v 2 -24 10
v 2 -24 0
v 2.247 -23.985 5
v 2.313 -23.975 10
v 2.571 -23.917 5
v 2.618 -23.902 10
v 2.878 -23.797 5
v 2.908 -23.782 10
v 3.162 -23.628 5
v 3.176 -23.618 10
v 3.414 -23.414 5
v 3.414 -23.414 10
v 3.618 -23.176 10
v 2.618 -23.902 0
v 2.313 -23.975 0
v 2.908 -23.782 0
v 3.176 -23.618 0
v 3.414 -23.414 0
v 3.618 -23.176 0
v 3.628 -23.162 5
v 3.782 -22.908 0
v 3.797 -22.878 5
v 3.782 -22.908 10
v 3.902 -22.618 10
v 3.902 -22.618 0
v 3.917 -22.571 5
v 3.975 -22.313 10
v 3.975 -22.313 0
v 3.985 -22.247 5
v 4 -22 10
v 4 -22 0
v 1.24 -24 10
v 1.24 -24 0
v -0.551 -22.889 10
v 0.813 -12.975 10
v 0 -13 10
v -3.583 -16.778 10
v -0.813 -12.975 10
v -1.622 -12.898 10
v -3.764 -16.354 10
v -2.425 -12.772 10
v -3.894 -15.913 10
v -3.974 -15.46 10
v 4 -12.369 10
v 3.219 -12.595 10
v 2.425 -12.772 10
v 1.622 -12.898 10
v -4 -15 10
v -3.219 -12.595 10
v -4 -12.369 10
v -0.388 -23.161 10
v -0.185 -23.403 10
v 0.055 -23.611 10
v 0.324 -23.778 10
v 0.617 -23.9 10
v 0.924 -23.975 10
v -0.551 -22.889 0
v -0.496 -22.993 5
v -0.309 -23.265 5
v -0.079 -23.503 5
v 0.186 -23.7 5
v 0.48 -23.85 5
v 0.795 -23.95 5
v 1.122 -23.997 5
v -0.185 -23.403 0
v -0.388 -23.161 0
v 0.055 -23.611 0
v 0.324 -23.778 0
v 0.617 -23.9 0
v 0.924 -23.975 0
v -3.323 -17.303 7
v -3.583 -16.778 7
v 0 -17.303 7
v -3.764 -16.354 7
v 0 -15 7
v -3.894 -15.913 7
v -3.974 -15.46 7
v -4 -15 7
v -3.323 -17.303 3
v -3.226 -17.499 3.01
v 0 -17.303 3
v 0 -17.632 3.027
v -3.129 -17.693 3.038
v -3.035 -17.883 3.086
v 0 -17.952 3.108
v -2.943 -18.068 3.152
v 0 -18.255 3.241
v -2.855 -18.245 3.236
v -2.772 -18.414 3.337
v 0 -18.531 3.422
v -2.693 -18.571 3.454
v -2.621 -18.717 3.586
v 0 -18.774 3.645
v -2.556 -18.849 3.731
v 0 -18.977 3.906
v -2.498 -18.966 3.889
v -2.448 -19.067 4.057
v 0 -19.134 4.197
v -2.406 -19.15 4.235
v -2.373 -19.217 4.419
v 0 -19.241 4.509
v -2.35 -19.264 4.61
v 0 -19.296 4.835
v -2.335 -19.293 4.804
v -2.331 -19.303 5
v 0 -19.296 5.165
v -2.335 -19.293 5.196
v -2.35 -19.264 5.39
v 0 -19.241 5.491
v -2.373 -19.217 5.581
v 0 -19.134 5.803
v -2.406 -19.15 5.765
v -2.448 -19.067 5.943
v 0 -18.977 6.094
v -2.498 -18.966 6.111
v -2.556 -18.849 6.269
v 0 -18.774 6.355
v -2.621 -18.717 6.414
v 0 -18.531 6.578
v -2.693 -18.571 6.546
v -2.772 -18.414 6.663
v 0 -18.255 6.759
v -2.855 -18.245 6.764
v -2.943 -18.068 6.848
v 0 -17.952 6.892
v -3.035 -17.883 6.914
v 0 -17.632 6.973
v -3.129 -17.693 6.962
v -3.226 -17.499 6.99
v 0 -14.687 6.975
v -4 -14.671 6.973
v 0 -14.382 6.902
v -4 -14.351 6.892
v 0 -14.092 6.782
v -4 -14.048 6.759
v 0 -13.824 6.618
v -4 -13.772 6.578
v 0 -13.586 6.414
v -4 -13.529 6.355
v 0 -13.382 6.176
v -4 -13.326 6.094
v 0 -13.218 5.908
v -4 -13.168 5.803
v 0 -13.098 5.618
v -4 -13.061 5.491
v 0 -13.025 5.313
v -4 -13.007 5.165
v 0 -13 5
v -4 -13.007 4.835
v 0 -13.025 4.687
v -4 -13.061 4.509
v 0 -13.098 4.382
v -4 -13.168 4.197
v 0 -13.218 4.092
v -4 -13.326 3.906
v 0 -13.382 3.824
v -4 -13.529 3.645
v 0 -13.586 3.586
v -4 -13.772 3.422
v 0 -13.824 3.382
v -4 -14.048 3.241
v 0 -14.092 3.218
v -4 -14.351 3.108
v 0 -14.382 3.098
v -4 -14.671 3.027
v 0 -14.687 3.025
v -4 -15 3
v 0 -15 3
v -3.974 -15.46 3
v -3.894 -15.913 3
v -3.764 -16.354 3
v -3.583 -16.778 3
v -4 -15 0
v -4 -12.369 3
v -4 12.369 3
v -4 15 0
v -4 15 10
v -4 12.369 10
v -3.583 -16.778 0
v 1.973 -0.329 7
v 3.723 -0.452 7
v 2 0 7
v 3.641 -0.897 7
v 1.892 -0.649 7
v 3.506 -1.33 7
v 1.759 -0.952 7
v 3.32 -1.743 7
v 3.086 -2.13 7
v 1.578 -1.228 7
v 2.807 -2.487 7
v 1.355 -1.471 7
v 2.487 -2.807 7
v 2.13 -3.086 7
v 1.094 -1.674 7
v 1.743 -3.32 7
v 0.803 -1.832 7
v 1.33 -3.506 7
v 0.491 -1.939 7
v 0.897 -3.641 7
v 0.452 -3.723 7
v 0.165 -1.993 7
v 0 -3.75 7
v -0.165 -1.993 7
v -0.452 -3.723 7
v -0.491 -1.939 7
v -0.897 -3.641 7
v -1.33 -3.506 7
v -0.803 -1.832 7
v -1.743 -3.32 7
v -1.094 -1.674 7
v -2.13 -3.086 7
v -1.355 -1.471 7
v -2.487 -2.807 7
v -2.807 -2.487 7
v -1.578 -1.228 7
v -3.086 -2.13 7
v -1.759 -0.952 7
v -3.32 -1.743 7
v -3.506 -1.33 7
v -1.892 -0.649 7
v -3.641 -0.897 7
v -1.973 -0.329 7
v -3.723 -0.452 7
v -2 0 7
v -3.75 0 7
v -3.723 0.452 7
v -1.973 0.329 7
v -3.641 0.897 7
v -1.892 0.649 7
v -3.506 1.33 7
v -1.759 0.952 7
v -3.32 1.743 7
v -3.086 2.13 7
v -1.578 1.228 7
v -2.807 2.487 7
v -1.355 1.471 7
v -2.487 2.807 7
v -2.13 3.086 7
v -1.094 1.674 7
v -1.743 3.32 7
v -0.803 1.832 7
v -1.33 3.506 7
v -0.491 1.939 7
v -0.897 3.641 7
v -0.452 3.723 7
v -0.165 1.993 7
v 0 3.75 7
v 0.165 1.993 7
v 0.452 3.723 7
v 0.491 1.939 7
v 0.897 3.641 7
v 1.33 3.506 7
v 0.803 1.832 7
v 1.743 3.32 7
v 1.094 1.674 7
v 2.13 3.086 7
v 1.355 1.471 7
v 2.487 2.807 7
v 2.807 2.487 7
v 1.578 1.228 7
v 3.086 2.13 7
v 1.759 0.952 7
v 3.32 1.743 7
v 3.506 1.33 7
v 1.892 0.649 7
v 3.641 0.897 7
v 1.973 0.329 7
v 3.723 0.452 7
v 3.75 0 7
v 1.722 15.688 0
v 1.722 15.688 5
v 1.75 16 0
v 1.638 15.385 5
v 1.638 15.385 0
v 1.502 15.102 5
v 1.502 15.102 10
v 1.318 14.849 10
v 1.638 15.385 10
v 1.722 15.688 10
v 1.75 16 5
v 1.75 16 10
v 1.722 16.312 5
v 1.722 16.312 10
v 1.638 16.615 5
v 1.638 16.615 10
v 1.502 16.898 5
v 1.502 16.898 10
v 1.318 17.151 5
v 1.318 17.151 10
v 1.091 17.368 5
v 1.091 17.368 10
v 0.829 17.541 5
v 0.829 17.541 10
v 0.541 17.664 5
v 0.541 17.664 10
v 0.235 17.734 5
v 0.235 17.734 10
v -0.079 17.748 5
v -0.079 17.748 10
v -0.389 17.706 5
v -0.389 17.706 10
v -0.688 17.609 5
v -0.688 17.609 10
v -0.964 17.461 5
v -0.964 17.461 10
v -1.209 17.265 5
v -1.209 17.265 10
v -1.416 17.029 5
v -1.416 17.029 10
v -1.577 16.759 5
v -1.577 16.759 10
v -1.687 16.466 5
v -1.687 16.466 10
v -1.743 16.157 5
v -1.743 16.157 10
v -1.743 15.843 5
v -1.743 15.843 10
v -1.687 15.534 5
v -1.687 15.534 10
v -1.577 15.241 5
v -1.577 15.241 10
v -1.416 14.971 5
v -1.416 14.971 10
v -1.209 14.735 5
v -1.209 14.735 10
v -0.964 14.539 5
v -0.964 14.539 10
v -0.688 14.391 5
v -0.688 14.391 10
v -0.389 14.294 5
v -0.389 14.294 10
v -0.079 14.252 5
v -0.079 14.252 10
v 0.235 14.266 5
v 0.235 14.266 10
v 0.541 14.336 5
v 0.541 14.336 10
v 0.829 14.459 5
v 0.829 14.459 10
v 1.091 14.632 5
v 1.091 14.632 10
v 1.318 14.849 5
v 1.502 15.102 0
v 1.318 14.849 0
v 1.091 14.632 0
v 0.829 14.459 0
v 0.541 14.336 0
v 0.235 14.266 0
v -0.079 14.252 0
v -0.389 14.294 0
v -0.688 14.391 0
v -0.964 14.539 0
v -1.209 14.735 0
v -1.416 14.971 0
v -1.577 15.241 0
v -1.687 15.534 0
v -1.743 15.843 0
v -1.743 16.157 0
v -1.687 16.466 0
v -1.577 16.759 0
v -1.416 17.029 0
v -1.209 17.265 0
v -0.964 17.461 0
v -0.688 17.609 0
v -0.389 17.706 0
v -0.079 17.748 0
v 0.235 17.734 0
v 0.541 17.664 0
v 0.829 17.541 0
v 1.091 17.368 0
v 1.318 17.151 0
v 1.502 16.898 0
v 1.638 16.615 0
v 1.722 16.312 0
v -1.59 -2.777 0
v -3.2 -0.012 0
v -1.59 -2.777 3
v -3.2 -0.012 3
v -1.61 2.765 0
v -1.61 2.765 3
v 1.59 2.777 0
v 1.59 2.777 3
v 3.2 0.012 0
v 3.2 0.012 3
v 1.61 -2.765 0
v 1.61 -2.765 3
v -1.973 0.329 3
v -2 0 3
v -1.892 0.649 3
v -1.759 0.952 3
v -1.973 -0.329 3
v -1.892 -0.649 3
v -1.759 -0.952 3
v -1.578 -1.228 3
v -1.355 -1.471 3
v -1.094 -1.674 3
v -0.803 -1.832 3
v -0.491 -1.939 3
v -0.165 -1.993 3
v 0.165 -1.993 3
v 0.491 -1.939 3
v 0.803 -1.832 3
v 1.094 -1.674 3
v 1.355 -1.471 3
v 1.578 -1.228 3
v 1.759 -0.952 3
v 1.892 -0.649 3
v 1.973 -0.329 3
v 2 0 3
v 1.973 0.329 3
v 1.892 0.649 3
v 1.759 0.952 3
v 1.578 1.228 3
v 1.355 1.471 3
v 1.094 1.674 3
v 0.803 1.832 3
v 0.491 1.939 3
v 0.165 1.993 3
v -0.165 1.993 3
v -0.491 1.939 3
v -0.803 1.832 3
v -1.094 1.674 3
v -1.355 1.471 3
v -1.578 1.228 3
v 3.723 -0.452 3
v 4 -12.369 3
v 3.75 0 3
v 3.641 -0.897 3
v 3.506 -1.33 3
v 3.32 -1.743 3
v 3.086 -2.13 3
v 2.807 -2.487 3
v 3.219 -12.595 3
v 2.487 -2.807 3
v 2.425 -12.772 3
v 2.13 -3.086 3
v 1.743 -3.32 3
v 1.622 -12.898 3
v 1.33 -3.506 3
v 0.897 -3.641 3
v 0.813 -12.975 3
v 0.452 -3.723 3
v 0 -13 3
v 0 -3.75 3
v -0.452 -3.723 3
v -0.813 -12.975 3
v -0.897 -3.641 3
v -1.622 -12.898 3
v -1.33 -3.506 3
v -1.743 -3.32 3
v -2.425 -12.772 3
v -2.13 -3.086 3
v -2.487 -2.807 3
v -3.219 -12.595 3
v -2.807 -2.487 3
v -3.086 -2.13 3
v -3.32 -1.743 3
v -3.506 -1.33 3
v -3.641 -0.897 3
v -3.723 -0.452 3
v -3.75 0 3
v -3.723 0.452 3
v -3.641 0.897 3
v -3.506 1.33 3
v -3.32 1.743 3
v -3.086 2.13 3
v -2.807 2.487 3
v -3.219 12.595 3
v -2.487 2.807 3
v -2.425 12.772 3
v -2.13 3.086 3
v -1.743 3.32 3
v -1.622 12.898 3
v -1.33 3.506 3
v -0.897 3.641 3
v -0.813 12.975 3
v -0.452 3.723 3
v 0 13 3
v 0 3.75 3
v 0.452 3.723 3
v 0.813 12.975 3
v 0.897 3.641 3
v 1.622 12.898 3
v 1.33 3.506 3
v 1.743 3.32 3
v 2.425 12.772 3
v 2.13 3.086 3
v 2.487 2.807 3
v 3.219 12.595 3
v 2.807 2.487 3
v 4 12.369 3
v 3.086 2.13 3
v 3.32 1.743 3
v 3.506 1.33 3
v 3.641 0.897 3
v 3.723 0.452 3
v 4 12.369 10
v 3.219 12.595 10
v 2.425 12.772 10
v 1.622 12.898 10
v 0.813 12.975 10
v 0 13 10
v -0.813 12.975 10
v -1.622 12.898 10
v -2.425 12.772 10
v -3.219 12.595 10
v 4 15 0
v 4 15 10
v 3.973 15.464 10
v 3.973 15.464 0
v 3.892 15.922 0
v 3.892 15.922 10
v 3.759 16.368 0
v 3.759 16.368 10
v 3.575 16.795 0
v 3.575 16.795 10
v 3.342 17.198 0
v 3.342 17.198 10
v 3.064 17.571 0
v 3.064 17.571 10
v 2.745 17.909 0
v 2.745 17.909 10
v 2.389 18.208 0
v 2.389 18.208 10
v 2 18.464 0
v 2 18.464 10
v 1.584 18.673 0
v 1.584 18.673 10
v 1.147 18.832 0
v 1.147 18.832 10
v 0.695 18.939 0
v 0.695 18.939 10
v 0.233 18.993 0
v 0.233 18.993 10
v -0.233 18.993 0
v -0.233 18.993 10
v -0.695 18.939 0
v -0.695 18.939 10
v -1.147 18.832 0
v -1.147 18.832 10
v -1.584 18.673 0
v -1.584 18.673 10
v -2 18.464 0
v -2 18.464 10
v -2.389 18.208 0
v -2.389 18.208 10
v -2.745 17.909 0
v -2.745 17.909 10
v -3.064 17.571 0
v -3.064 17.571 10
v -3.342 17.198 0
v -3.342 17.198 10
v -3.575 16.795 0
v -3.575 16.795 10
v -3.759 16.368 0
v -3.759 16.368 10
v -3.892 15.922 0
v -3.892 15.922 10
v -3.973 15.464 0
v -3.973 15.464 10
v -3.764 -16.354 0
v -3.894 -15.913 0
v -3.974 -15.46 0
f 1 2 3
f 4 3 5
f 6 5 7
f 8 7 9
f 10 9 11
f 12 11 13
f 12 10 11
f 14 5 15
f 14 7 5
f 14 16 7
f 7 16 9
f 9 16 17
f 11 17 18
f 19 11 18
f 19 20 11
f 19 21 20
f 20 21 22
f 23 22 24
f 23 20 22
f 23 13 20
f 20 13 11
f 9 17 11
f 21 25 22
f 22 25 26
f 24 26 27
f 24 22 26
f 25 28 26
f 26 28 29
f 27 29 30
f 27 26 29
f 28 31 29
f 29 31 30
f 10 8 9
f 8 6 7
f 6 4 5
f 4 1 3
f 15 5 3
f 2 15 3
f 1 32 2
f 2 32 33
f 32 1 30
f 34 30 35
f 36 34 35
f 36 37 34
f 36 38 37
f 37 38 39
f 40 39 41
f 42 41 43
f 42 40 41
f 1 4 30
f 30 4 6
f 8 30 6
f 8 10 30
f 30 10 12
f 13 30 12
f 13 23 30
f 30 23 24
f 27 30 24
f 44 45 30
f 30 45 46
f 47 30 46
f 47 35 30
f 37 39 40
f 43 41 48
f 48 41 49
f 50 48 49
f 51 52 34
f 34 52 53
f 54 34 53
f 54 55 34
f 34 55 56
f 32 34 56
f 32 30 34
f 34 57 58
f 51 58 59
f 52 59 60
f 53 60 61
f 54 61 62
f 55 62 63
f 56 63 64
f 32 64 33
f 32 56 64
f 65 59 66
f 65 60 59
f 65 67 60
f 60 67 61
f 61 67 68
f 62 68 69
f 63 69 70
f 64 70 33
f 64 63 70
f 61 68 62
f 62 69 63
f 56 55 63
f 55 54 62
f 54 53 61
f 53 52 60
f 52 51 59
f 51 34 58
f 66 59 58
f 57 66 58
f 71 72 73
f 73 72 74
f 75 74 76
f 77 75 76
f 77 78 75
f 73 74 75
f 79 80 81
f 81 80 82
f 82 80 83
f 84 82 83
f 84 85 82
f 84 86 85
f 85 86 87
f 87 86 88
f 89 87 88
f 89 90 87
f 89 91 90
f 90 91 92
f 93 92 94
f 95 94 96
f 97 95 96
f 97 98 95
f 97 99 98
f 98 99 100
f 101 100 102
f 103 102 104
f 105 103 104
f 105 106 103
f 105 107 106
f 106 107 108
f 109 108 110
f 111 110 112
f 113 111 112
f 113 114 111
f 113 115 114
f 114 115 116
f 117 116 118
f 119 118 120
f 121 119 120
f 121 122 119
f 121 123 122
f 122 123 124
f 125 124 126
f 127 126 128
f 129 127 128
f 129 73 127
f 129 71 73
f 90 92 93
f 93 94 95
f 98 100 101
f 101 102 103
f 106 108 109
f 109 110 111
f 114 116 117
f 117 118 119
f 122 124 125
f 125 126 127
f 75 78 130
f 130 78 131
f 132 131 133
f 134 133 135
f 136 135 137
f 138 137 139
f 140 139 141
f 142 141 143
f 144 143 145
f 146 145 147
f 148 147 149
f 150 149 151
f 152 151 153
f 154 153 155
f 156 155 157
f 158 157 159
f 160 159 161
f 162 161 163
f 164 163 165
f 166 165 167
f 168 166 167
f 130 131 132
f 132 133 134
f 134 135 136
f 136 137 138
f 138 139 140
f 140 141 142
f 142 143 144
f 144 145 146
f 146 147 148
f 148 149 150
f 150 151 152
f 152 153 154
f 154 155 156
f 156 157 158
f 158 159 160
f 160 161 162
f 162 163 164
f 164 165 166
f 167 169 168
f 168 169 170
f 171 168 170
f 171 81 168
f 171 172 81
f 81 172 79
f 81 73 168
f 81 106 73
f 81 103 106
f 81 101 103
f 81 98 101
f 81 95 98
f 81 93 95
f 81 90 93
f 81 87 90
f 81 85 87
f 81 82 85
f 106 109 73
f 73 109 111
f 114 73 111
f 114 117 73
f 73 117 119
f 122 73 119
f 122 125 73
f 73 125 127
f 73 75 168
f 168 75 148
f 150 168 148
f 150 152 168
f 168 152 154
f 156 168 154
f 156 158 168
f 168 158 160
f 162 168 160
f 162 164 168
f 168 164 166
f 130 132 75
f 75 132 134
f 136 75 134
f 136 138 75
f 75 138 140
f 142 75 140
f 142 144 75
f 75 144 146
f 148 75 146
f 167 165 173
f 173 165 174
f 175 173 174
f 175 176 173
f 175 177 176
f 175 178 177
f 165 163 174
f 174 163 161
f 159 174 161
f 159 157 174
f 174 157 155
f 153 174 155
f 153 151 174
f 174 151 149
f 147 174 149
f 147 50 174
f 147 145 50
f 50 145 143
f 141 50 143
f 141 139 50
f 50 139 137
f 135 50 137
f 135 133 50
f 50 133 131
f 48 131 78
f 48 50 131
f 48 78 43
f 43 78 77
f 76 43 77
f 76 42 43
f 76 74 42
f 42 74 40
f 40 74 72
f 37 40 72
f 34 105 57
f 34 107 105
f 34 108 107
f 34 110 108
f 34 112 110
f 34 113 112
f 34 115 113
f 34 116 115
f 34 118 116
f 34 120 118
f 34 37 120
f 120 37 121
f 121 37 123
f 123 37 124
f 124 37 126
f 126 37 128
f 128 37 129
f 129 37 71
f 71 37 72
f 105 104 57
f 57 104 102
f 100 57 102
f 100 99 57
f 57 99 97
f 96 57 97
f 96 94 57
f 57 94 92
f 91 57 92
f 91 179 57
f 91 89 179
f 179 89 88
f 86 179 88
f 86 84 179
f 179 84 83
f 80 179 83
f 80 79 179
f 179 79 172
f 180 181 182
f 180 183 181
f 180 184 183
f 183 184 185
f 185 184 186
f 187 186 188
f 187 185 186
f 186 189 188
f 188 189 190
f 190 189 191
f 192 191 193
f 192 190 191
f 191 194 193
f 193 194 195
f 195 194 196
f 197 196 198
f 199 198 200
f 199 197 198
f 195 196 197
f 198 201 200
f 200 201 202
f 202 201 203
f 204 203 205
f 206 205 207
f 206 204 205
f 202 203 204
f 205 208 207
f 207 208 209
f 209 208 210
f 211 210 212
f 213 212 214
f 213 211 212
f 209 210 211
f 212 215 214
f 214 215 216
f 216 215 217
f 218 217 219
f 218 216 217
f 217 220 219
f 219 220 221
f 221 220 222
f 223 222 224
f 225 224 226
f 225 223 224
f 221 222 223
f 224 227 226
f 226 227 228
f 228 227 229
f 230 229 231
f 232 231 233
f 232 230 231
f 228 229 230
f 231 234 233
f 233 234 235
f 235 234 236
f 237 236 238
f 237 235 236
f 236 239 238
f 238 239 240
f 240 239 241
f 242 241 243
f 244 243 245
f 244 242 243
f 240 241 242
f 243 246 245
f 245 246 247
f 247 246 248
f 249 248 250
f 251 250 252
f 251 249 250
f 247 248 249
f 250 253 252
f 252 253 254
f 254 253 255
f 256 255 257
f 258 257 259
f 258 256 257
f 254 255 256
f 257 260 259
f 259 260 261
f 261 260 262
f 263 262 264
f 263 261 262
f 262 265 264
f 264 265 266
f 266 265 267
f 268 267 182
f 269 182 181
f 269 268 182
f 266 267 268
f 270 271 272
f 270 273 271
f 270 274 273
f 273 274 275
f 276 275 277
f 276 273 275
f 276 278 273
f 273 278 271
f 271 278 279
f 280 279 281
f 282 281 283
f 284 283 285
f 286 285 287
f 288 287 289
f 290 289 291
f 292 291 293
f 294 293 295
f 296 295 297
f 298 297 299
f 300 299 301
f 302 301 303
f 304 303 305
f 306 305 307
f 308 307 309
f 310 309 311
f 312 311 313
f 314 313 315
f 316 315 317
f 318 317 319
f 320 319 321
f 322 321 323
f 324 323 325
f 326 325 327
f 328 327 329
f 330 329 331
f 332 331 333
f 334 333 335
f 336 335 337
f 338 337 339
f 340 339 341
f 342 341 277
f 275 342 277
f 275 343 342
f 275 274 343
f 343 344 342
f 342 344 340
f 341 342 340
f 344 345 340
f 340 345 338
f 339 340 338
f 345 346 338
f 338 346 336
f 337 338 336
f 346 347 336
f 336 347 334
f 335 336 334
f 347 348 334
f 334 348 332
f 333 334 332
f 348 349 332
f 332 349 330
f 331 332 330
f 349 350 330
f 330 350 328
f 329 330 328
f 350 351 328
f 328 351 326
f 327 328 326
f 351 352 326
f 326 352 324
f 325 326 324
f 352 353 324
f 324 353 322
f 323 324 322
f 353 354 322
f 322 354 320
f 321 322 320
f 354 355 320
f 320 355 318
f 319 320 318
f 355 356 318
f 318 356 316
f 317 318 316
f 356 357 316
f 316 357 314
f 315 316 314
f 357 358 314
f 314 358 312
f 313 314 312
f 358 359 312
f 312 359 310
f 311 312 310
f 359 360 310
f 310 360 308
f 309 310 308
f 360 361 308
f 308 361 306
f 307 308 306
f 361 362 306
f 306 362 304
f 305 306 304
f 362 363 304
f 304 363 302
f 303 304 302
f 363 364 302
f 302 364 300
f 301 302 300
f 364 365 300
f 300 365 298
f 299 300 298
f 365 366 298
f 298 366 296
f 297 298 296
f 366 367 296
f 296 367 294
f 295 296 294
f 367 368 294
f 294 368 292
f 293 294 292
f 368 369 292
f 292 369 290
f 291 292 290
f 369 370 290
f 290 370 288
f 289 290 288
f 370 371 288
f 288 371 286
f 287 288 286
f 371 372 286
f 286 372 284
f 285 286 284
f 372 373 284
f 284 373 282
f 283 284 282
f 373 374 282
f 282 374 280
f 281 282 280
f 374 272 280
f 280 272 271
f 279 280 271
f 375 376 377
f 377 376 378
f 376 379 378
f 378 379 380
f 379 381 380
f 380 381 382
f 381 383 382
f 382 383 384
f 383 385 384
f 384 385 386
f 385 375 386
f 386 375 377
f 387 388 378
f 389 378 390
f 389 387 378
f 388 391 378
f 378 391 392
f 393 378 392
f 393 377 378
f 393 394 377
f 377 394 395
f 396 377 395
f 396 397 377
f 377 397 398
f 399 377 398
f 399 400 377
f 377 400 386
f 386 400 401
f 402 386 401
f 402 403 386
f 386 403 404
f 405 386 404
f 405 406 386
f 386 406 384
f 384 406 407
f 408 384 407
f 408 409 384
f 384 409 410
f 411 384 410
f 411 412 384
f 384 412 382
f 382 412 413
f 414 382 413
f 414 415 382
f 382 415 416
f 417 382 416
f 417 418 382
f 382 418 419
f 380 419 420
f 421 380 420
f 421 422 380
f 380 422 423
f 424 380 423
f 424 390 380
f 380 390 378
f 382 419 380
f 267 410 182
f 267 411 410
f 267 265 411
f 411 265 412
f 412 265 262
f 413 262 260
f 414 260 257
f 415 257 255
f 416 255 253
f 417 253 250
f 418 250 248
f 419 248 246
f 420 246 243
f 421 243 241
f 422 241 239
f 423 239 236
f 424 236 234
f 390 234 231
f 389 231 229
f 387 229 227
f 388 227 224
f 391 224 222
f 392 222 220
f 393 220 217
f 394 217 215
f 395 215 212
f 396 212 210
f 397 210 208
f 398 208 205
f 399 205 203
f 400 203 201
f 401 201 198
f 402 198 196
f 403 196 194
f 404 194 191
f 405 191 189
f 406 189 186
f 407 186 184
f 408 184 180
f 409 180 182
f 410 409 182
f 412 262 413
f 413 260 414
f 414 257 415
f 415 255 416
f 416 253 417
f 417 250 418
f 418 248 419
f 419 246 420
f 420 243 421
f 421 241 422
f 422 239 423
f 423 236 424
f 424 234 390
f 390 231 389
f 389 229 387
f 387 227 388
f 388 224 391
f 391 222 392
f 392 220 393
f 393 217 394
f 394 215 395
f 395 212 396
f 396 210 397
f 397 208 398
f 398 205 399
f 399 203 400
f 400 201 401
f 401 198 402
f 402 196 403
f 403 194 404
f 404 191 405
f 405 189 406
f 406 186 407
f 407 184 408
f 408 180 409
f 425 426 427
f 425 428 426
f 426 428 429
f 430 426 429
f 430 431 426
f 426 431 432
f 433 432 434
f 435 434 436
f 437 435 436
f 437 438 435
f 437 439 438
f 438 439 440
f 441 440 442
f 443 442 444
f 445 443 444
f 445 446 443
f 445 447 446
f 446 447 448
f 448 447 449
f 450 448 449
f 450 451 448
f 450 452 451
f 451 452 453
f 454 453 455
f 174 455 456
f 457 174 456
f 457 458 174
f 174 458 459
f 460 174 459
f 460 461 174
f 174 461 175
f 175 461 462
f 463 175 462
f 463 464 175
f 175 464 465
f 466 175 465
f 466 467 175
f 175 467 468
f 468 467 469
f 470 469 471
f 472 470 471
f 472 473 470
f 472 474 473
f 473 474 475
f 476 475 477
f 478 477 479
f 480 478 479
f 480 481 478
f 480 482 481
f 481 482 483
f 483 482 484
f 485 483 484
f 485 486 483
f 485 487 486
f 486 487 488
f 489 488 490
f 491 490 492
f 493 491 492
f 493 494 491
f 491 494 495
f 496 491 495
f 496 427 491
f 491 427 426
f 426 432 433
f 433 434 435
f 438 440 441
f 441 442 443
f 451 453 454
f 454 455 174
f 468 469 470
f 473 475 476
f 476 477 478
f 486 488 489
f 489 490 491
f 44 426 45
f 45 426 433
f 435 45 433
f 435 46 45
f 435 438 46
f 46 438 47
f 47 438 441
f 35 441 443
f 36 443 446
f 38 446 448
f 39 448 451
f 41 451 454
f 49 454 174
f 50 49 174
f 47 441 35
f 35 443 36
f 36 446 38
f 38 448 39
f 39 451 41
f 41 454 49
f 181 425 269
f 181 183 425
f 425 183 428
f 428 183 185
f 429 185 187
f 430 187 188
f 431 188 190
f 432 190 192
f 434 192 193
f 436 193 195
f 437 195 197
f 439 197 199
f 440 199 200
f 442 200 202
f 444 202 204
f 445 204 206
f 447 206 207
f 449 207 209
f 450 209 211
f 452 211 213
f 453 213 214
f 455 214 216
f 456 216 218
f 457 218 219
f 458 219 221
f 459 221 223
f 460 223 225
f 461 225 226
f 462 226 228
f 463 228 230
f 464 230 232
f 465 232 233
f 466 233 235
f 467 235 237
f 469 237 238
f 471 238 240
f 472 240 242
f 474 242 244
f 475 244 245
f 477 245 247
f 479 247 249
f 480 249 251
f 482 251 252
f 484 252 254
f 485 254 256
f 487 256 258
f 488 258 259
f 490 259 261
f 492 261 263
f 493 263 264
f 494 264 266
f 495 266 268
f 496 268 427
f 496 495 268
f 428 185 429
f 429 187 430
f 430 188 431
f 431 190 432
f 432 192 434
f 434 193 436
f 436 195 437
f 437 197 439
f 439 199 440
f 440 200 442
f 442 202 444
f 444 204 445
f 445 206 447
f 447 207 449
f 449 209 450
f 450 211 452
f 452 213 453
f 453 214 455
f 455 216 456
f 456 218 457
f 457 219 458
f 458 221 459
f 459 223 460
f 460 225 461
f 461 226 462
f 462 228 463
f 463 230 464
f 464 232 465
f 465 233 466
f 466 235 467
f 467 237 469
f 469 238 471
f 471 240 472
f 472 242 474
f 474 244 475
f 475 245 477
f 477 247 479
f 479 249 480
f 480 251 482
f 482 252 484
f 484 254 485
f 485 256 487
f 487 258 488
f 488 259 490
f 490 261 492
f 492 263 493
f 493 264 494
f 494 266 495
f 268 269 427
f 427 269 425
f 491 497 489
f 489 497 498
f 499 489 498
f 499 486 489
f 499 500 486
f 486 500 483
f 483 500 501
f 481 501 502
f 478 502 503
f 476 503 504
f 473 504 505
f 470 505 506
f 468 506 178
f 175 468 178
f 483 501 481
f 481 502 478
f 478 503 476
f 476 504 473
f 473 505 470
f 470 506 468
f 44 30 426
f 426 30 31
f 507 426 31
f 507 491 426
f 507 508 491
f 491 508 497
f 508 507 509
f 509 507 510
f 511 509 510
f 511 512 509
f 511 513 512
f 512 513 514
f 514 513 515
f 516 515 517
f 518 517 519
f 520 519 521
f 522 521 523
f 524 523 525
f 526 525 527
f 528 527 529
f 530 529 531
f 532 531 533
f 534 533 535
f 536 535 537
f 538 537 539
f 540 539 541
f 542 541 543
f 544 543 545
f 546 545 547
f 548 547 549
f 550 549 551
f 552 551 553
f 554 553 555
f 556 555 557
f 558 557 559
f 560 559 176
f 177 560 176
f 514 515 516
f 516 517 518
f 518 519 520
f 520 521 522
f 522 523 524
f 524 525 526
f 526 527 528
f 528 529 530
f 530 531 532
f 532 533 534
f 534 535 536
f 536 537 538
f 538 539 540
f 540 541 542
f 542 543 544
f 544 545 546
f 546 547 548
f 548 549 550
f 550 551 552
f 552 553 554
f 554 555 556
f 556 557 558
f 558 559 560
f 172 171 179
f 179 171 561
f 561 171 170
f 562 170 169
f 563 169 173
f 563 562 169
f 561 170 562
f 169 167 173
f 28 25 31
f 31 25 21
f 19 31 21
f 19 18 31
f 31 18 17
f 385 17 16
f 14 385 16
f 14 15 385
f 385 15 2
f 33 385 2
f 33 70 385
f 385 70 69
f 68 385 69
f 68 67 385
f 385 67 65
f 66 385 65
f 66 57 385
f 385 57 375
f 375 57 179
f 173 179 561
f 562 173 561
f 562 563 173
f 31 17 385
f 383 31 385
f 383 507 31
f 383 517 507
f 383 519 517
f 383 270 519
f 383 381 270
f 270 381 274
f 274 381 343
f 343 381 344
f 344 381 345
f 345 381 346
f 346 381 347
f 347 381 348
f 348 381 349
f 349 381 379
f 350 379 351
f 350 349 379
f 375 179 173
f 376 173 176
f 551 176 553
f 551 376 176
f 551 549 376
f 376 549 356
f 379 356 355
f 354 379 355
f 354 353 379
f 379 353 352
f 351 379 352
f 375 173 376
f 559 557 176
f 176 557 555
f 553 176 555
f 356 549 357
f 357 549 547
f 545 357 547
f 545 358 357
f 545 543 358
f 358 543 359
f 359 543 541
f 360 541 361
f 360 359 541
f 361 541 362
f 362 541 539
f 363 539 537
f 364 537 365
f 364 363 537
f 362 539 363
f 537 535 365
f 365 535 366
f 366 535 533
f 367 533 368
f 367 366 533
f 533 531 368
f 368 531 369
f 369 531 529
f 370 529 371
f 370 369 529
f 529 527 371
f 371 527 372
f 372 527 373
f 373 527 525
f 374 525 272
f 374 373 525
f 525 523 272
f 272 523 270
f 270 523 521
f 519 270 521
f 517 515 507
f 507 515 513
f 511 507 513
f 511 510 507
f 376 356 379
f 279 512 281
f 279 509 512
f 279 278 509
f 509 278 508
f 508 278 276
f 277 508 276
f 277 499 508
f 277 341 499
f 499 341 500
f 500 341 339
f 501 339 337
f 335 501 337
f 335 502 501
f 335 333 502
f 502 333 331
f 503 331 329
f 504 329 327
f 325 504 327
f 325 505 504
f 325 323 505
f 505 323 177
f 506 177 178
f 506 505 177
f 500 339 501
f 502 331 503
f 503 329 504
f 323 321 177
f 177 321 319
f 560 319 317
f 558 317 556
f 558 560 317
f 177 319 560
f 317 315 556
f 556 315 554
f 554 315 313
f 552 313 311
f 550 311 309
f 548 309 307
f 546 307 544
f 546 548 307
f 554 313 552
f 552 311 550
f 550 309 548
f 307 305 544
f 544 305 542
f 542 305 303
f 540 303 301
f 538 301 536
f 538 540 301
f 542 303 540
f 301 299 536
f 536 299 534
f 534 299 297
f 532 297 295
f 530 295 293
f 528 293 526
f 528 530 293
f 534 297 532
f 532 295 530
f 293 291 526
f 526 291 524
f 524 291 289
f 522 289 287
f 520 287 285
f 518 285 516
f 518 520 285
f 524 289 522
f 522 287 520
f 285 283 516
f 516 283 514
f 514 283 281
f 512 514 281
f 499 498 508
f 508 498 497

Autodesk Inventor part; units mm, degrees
ref_plane "YZ Plane" through (0, 0, 0) normal (1, 0, 0) x (0, 1, 0)
ref_plane "XZ Plane" through (0, 0, 0) normal (0, 1, 0) x (-1, 0, 0)
ref_plane "XY Plane" through (0, 0, 0) normal (0, 0, 1) x (1, 0, 0)
sketch "Sketch1" plane through (0, 0, 0) normal (0, 0, 1) x (1, 0, 0)
  line L0 (0, -15) -> (0, 15) construction
  line L1 (-4, -15) -> (-4, 15)
  line L2 (4, 15) -> (4, -15)
  arc A0 (-4, -15) -> (0, -19) centre (0, -15) ccw
  arc A1 (4, 15) -> (-4, 15) centre (0, 15) ccw
  line L3 (4, -15) -> (0, -15)
  line L4 (-4, -11) -> (-4, -19)
  line L5 (-4, -19) -> (4, -19)
  line L6 (4, -19) -> (4, -15)
  point P0 (0, 0)
  point P1 (0, 0)
  dimension "d0" = 4
  dimension "d17" = 30
extrude "Extrusion1" add sketch "Sketch1" along normal blind 10 contours L1 A1 L2 L6 L5 A0
sketch "Sketch2" plane through (0, 0, 10) normal (0, 0, 1) x (1, 0, 0)
  line L0 (-4, 15) -> (-4, -15) projected
  arc A0 (-4, -15) -> (0, -19) centre (0, -15) ccw projected
  line L1 (4, -19) -> (4, 15) projected
  arc A1 (4, 15) -> (-4, 15) centre (0, 15) ccw projected
  circle A2 centre (0, 0) radius 13
  circle A3 centre (0, 0) radius 3.75
  line L2 (0, -19) -> (4, -19) projected
  dimension "d3" = 26
  dimension "d4" = 7.5
extrude "Extrusion2" cut sketch "Sketch2" against normal blind 7 contours A2 L1 L0 | L0 A2 | A2 L1
sketch "Sketch3" plane through (0, 0, 10) normal (0, 0, 1) x (1, 0, 0)
  circle A0 centre (0, 0) radius 3.75 projected
  circle A1 centre (0, 0) radius 2
  line L0 (-4, -12.3693) -> (-4, -15) projected
  line L1 (4, 12.3693) -> (4, 15) projected
  arc A2 (4, 12.3693) -> (-4, 12.3693) centre (0, 0) ccw projected
  arc A3 (4, 15) -> (-4, 15) centre (0, 15) ccw projected
  arc A4 (-4, -12.3693) -> (4, -12.3693) centre (0, 0) ccw projected
  arc A5 (-4, -15) -> (0, -19) centre (0, -15) ccw projected
  line L2 (0, -19) -> (4, -19) projected
  line L3 (-4, 15) -> (-4, 12.3693) projected
  line L4 (4, -19) -> (4, -12.3693) projected
  dimension "d7" = 4
extrude "Extrusion3" cut sketch "Sketch3" against normal through all contours A1
sketch "Sketch4" plane through (0, 0, 0) normal (0, 0, -1) x (-1, 0, 0)
  circle A0 centre (0, 0) radius 2 projected
  line L0 (4, -15) -> (4, 15) projected
  arc A1 (4, 15) -> (-4, 15) centre (0, 15) ccw projected
  line L1 (-4, 15) -> (-4, -19) projected
  arc A2 (0, -19) -> (4, -15) centre (0, -15) ccw projected
  circle A3 centre (0, 0) radius 2 projected
  line L2 (1.5898, -2.7772) -> (-1.6102, -2.7654)
  line L3 (-1.6102, -2.7654) -> (-3.2, 0.0118)
  line L4 (-3.2, 0.0118) -> (-1.5898, 2.7772)
  line L5 (-1.5898, 2.7772) -> (1.6102, 2.7654)
  line L6 (1.6102, 2.7654) -> (3.2, -0.0118)
  line L7 (3.2, -0.0118) -> (1.5898, -2.7772)
  circle A4 centre (0, 0) radius 3.2
  line L8 (-4, -19) -> (0, -19) projected
  dimension "d10" = 6.4
extrude "Extrusion4" cut sketch "Sketch4" against normal blind 3 contours L2 L3 L4 L5 L6 L7
sketch "Sketch8" plane through (0, 0, 10) normal (0, 0, 1) x (1, 0, 0)
  arc A0 (4, 12.3693) -> (-4, 12.3693) centre (0, 0) ccw projected
  line L0 (4, 12.3693) -> (4, 15) projected
  arc A1 (4, 15) -> (-4, 15) centre (0, 15) ccw projected
  line L1 (-4, 15) -> (-4, 12.3693) projected
  circle A2 centre (0, 16) radius 1.75
  dimension "d28" = 3.5
  dimension "d40" = 1
  dimension "d41" = 5.402
extrude "Extrusion8" cut sketch "Sketch8" against normal through all contours A2
sketch "Sketch10" plane through (0, 0, 10) normal (0, 0, 1) x (1, 0, 0)
  circle A0 centre (0, 0) radius 2 projected
  circle A1 centre (0, 0) radius 2 projected
  circle A2 centre (0, 0) radius 3.75 projected
extrude "Extrusion10" cut sketch "Sketch10" against normal blind 3
sketch "Sketch12" plane through (0, 0, 10) normal (0, 0, 1) x (1, 0, 0)
  arc A0 (-4, -12.3693) -> (4, -12.3693) centre (0, 0) ccw projected
  line L0 (-4, -12.3693) -> (-4, -15) projected
  arc A1 (-4, -15) -> (0, -19) centre (0, -15) ccw projected
  line L1 (0, -19) -> (4, -19) projected
  line L2 (4, -19) -> (4, -12.3693) projected
  line L3 (4, -19) -> (4, -24)
  line L4 (4, -24) -> (0, -24)
  line L5 (0, -24) -> (-3.5832, -16.7778)
  arc A2 (-4, -15) -> (0, -19) centre (0, -15) ccw projected
  arc A3 (-4, -15) -> (0, -19) centre (0, -15) ccw projected
  line L6 (0, -19) -> (4, -19) projected
  dimension "d42" = 5
extrude "Extrusion11" add sketch "Sketch12" against normal up to surface (10 mm away) from surface at 0 contours L3 L4 L5 A1 L1
sketch "Sketch9" plane through (-4, -15, 0) normal (-1, 0, 0) x (0, 0, 1)
  line L0 (0, 0) -> (10, 0) projected
  line L1 (5, 0) -> (5, -2.3027) construction
  line L2 (3, 0) -> (3, -2.3027)
  line L3 (7, -2.3027) -> (7, 0)
  arc A0 (7, 0) -> (3, 0) centre (5, 0) ccw
  arc A1 (3, -2.3027) -> (7, -2.3027) centre (5, -2.3027) ccw
  line L4 (3, 2.6307) -> (3, 27.3693) projected
  point P0 (0, 15)
  point P1 (5, -1.1513)
  dimension "d31" = 4
  dimension "d34" = 2
  dimension "d45" = 1.1514
extrude "Extrusion9" cut sketch "Sketch9" against normal blind 4
fillet "Fillet4" radius 2 2 edges at (0, -24, 5) (4, -24, 5)
properties part number "rodamiento0.3"
